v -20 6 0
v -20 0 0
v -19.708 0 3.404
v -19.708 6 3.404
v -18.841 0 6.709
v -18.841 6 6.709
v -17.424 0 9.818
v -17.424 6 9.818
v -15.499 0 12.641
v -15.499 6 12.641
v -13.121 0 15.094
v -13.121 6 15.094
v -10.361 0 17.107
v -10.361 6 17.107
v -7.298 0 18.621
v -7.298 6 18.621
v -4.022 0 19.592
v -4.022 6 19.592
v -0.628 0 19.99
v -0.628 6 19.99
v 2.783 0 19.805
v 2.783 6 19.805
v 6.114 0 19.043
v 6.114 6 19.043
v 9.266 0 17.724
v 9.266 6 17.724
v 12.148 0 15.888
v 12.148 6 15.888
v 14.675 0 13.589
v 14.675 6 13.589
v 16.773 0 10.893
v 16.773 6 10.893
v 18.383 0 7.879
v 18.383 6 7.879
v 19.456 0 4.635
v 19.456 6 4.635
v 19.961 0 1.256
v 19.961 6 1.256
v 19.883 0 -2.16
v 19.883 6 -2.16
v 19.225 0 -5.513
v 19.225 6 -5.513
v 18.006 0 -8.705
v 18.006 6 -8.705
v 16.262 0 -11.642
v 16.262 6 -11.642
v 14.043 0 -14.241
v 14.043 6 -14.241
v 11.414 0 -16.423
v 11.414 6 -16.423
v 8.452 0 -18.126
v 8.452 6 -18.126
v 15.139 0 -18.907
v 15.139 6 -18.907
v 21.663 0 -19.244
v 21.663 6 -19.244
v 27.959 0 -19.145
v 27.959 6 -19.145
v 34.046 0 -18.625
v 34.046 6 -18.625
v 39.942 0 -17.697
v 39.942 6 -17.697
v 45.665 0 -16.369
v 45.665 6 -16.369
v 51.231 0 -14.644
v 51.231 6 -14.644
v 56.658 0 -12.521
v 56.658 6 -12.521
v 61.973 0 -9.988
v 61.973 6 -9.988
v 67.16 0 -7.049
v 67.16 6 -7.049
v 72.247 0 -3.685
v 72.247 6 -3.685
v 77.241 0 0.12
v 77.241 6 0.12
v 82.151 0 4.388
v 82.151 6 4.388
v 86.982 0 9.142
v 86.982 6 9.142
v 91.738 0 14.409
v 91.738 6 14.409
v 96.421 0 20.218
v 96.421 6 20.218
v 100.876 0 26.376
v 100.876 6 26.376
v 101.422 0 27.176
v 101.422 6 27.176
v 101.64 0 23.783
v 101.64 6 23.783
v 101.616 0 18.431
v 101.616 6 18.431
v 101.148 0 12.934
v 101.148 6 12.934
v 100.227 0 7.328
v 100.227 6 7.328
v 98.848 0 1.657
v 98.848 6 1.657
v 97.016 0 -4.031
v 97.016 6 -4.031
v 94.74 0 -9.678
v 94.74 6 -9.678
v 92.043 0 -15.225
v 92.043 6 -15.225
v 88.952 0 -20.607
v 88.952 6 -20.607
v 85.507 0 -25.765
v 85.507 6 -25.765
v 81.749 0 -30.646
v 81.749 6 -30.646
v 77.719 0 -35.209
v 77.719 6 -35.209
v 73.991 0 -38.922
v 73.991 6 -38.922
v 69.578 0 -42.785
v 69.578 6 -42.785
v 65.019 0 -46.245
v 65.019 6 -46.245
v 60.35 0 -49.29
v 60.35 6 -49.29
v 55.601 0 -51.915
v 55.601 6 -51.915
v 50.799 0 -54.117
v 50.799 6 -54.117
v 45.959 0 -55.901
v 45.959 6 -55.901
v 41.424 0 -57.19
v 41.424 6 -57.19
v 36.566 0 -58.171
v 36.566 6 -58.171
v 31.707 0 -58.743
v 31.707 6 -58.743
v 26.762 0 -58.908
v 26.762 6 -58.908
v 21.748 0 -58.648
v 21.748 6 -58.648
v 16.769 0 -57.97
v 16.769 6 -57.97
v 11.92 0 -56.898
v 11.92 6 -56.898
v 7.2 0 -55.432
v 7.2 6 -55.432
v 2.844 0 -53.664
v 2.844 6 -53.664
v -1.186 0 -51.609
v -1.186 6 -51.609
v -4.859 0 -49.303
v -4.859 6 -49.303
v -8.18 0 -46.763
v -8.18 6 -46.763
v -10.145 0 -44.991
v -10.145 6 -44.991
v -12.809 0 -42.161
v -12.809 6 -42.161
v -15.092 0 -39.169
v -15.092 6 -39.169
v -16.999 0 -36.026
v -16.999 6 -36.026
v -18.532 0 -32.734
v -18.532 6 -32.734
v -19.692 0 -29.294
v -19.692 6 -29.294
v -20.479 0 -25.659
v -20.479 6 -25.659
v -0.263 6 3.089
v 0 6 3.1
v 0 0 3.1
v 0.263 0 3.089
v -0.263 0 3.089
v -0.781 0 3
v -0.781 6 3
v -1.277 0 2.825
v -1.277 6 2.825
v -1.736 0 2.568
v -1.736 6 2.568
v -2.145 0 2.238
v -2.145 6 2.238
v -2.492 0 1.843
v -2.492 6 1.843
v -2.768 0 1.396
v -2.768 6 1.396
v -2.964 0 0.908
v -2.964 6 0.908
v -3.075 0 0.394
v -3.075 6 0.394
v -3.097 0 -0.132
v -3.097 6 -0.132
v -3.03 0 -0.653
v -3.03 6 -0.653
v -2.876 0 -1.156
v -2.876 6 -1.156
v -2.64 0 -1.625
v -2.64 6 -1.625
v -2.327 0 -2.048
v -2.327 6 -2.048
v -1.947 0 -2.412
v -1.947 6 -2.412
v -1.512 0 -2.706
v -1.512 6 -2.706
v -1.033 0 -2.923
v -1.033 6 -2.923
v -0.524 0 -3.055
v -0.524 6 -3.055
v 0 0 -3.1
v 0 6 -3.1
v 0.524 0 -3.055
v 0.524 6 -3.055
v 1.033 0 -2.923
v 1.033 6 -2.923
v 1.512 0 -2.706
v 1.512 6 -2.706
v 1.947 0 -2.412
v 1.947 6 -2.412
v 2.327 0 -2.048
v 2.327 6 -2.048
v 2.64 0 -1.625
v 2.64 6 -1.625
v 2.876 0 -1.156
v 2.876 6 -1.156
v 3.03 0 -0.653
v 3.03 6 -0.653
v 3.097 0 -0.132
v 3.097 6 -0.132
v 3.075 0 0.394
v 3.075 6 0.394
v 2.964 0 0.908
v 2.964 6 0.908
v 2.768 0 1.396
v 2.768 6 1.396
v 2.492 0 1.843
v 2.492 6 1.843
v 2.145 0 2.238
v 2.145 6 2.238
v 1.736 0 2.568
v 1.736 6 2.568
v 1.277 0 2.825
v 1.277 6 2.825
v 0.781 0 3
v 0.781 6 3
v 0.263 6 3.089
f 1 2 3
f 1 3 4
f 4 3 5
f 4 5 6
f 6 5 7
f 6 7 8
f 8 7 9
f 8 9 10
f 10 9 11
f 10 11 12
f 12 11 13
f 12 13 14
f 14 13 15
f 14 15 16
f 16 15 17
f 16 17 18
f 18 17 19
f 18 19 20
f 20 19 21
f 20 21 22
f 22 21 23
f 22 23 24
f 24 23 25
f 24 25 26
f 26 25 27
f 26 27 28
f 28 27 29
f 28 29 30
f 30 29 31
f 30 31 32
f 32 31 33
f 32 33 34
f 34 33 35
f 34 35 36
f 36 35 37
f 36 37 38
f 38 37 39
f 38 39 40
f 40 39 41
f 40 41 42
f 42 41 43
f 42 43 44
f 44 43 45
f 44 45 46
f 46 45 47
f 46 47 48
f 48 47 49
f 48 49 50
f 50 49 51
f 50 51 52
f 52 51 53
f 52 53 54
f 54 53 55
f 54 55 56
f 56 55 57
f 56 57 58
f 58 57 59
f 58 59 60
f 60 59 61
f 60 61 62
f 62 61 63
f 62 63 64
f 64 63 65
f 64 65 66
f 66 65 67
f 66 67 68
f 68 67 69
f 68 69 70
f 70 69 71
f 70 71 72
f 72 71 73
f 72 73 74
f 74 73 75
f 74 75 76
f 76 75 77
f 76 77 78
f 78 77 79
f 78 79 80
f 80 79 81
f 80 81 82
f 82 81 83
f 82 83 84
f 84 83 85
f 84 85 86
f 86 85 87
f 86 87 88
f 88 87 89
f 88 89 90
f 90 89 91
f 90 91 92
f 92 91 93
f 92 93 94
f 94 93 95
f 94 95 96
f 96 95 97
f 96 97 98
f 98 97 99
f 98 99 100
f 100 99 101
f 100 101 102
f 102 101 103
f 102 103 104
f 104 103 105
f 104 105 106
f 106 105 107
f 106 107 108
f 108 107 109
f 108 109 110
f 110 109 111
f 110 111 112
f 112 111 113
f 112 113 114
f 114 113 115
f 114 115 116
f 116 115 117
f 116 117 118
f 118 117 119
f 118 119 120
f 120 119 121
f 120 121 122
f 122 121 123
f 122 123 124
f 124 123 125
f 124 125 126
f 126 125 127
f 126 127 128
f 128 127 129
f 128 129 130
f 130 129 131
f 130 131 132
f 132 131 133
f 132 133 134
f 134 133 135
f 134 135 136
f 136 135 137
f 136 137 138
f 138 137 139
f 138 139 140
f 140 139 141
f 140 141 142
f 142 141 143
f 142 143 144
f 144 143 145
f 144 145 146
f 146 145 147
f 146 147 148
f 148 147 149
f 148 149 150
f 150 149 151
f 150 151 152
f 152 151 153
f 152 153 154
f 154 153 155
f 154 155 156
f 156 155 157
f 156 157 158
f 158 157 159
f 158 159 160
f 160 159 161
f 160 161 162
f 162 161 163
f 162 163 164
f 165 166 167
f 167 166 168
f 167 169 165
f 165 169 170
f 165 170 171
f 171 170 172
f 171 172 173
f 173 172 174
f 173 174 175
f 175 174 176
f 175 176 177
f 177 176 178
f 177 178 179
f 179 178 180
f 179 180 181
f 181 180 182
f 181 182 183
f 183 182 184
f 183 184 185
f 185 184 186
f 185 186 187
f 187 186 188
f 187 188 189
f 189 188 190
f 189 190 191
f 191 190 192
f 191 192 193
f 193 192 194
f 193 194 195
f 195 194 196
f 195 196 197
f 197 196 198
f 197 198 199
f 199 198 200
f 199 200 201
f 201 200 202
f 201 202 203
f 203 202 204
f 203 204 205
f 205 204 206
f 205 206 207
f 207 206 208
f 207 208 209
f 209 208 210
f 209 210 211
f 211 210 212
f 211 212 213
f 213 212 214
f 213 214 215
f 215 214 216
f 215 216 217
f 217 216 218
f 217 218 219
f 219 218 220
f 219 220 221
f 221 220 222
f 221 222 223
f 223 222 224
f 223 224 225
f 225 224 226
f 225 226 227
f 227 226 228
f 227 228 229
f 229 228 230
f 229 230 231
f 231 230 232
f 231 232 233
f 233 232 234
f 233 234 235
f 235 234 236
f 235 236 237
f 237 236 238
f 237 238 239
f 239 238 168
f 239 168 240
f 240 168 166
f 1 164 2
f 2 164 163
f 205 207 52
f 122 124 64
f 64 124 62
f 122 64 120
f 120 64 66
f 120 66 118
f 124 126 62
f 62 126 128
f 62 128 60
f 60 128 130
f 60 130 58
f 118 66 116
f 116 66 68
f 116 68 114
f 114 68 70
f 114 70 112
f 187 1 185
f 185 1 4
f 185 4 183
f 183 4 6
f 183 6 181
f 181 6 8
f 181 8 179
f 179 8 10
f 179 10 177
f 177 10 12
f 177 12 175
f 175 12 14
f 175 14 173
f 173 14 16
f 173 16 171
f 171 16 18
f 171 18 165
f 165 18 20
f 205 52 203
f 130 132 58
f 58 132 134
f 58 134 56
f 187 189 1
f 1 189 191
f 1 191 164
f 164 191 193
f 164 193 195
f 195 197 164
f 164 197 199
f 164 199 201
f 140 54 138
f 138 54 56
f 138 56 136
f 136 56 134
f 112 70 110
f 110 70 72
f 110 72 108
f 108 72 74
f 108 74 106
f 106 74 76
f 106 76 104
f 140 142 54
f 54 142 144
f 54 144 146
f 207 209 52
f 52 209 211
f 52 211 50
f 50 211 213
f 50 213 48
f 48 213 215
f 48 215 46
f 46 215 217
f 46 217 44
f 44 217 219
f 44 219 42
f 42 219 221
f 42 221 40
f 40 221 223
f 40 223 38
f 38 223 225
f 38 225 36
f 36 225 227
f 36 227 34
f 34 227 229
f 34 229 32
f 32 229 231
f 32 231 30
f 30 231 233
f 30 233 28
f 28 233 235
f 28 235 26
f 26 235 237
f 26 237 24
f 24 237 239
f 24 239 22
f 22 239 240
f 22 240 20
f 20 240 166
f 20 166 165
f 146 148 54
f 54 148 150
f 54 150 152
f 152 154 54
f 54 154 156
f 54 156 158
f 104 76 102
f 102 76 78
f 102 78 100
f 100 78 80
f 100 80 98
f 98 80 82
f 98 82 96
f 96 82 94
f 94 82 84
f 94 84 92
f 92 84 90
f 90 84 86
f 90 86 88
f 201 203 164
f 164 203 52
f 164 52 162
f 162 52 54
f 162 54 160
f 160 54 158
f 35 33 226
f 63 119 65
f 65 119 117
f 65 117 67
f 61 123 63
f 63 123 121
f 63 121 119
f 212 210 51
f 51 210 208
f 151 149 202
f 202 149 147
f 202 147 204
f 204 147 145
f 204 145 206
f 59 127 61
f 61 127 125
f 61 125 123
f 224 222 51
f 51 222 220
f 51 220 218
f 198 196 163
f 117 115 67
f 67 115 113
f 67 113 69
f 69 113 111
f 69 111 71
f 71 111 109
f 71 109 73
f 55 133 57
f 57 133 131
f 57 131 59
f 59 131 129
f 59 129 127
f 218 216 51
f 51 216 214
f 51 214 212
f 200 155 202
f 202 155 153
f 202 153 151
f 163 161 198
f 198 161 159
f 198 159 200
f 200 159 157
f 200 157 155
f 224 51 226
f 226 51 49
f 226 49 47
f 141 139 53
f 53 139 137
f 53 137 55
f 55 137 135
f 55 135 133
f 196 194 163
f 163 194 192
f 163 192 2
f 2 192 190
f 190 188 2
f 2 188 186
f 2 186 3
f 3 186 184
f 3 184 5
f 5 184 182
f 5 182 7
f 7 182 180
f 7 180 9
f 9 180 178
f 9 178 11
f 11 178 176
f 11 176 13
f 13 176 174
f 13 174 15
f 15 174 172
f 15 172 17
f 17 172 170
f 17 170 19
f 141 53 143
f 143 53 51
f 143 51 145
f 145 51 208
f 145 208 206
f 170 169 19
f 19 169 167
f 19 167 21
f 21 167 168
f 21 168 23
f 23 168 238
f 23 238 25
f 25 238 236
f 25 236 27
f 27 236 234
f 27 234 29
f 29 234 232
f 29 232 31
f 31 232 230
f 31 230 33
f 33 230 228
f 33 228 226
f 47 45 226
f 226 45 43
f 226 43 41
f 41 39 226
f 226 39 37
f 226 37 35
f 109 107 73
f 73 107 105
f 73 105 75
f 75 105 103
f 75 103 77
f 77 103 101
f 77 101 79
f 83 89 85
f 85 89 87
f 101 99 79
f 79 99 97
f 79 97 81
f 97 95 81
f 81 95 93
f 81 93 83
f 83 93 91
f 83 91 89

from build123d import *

# Parameters (mm, degrees)
SKETCH1_R           = 3.1
BOSS_EXTRUDE1_DEPTH = 6


with BuildPart() as part:
    # Sketch1 → Boss-Extrude1 (new body)
    with BuildSketch(Plane(origin=(0, 0, 0), x_dir=(1, 0, 0), z_dir=(0, 1, 0))):
        with BuildLine():
            ThreePointArc((-20, 0), (10.745992167, -16.867828916), (8.452365235, 18.126155741))
            add(Edge.make_bspline(
                [(8.452365235, 18.126155741), (65.014942837, 26.513222836), (101.42221176, -27.175999736)],
                knots=[0, 0, 0, 1, 1, 1], degree=2))
            add(Edge.make_bspline(
                [(-20.478801126, 25.658824893), (-19.369315981, 32.640094211), (-9.555820546, 50.988671143), (57.295225174, 74.584391164), (105.094597494, 12.854902244), (101.42221176, -27.175999736)],
                knots=[0.052355051, 0.052355051, 0.052355051, 0.052355051, 0.15626575, 0.372181463, 1, 1, 1, 1], degree=3))
            Line((-20.478801126, 25.658824893), (-20, 0))
        make_face()
        with Locations(Location((0, 0, 0), (0, 0, 270))):
            Circle(SKETCH1_R, mode=Mode.SUBTRACT)
    extrude(amount=BOSS_EXTRUDE1_DEPTH)


solid = part.part
